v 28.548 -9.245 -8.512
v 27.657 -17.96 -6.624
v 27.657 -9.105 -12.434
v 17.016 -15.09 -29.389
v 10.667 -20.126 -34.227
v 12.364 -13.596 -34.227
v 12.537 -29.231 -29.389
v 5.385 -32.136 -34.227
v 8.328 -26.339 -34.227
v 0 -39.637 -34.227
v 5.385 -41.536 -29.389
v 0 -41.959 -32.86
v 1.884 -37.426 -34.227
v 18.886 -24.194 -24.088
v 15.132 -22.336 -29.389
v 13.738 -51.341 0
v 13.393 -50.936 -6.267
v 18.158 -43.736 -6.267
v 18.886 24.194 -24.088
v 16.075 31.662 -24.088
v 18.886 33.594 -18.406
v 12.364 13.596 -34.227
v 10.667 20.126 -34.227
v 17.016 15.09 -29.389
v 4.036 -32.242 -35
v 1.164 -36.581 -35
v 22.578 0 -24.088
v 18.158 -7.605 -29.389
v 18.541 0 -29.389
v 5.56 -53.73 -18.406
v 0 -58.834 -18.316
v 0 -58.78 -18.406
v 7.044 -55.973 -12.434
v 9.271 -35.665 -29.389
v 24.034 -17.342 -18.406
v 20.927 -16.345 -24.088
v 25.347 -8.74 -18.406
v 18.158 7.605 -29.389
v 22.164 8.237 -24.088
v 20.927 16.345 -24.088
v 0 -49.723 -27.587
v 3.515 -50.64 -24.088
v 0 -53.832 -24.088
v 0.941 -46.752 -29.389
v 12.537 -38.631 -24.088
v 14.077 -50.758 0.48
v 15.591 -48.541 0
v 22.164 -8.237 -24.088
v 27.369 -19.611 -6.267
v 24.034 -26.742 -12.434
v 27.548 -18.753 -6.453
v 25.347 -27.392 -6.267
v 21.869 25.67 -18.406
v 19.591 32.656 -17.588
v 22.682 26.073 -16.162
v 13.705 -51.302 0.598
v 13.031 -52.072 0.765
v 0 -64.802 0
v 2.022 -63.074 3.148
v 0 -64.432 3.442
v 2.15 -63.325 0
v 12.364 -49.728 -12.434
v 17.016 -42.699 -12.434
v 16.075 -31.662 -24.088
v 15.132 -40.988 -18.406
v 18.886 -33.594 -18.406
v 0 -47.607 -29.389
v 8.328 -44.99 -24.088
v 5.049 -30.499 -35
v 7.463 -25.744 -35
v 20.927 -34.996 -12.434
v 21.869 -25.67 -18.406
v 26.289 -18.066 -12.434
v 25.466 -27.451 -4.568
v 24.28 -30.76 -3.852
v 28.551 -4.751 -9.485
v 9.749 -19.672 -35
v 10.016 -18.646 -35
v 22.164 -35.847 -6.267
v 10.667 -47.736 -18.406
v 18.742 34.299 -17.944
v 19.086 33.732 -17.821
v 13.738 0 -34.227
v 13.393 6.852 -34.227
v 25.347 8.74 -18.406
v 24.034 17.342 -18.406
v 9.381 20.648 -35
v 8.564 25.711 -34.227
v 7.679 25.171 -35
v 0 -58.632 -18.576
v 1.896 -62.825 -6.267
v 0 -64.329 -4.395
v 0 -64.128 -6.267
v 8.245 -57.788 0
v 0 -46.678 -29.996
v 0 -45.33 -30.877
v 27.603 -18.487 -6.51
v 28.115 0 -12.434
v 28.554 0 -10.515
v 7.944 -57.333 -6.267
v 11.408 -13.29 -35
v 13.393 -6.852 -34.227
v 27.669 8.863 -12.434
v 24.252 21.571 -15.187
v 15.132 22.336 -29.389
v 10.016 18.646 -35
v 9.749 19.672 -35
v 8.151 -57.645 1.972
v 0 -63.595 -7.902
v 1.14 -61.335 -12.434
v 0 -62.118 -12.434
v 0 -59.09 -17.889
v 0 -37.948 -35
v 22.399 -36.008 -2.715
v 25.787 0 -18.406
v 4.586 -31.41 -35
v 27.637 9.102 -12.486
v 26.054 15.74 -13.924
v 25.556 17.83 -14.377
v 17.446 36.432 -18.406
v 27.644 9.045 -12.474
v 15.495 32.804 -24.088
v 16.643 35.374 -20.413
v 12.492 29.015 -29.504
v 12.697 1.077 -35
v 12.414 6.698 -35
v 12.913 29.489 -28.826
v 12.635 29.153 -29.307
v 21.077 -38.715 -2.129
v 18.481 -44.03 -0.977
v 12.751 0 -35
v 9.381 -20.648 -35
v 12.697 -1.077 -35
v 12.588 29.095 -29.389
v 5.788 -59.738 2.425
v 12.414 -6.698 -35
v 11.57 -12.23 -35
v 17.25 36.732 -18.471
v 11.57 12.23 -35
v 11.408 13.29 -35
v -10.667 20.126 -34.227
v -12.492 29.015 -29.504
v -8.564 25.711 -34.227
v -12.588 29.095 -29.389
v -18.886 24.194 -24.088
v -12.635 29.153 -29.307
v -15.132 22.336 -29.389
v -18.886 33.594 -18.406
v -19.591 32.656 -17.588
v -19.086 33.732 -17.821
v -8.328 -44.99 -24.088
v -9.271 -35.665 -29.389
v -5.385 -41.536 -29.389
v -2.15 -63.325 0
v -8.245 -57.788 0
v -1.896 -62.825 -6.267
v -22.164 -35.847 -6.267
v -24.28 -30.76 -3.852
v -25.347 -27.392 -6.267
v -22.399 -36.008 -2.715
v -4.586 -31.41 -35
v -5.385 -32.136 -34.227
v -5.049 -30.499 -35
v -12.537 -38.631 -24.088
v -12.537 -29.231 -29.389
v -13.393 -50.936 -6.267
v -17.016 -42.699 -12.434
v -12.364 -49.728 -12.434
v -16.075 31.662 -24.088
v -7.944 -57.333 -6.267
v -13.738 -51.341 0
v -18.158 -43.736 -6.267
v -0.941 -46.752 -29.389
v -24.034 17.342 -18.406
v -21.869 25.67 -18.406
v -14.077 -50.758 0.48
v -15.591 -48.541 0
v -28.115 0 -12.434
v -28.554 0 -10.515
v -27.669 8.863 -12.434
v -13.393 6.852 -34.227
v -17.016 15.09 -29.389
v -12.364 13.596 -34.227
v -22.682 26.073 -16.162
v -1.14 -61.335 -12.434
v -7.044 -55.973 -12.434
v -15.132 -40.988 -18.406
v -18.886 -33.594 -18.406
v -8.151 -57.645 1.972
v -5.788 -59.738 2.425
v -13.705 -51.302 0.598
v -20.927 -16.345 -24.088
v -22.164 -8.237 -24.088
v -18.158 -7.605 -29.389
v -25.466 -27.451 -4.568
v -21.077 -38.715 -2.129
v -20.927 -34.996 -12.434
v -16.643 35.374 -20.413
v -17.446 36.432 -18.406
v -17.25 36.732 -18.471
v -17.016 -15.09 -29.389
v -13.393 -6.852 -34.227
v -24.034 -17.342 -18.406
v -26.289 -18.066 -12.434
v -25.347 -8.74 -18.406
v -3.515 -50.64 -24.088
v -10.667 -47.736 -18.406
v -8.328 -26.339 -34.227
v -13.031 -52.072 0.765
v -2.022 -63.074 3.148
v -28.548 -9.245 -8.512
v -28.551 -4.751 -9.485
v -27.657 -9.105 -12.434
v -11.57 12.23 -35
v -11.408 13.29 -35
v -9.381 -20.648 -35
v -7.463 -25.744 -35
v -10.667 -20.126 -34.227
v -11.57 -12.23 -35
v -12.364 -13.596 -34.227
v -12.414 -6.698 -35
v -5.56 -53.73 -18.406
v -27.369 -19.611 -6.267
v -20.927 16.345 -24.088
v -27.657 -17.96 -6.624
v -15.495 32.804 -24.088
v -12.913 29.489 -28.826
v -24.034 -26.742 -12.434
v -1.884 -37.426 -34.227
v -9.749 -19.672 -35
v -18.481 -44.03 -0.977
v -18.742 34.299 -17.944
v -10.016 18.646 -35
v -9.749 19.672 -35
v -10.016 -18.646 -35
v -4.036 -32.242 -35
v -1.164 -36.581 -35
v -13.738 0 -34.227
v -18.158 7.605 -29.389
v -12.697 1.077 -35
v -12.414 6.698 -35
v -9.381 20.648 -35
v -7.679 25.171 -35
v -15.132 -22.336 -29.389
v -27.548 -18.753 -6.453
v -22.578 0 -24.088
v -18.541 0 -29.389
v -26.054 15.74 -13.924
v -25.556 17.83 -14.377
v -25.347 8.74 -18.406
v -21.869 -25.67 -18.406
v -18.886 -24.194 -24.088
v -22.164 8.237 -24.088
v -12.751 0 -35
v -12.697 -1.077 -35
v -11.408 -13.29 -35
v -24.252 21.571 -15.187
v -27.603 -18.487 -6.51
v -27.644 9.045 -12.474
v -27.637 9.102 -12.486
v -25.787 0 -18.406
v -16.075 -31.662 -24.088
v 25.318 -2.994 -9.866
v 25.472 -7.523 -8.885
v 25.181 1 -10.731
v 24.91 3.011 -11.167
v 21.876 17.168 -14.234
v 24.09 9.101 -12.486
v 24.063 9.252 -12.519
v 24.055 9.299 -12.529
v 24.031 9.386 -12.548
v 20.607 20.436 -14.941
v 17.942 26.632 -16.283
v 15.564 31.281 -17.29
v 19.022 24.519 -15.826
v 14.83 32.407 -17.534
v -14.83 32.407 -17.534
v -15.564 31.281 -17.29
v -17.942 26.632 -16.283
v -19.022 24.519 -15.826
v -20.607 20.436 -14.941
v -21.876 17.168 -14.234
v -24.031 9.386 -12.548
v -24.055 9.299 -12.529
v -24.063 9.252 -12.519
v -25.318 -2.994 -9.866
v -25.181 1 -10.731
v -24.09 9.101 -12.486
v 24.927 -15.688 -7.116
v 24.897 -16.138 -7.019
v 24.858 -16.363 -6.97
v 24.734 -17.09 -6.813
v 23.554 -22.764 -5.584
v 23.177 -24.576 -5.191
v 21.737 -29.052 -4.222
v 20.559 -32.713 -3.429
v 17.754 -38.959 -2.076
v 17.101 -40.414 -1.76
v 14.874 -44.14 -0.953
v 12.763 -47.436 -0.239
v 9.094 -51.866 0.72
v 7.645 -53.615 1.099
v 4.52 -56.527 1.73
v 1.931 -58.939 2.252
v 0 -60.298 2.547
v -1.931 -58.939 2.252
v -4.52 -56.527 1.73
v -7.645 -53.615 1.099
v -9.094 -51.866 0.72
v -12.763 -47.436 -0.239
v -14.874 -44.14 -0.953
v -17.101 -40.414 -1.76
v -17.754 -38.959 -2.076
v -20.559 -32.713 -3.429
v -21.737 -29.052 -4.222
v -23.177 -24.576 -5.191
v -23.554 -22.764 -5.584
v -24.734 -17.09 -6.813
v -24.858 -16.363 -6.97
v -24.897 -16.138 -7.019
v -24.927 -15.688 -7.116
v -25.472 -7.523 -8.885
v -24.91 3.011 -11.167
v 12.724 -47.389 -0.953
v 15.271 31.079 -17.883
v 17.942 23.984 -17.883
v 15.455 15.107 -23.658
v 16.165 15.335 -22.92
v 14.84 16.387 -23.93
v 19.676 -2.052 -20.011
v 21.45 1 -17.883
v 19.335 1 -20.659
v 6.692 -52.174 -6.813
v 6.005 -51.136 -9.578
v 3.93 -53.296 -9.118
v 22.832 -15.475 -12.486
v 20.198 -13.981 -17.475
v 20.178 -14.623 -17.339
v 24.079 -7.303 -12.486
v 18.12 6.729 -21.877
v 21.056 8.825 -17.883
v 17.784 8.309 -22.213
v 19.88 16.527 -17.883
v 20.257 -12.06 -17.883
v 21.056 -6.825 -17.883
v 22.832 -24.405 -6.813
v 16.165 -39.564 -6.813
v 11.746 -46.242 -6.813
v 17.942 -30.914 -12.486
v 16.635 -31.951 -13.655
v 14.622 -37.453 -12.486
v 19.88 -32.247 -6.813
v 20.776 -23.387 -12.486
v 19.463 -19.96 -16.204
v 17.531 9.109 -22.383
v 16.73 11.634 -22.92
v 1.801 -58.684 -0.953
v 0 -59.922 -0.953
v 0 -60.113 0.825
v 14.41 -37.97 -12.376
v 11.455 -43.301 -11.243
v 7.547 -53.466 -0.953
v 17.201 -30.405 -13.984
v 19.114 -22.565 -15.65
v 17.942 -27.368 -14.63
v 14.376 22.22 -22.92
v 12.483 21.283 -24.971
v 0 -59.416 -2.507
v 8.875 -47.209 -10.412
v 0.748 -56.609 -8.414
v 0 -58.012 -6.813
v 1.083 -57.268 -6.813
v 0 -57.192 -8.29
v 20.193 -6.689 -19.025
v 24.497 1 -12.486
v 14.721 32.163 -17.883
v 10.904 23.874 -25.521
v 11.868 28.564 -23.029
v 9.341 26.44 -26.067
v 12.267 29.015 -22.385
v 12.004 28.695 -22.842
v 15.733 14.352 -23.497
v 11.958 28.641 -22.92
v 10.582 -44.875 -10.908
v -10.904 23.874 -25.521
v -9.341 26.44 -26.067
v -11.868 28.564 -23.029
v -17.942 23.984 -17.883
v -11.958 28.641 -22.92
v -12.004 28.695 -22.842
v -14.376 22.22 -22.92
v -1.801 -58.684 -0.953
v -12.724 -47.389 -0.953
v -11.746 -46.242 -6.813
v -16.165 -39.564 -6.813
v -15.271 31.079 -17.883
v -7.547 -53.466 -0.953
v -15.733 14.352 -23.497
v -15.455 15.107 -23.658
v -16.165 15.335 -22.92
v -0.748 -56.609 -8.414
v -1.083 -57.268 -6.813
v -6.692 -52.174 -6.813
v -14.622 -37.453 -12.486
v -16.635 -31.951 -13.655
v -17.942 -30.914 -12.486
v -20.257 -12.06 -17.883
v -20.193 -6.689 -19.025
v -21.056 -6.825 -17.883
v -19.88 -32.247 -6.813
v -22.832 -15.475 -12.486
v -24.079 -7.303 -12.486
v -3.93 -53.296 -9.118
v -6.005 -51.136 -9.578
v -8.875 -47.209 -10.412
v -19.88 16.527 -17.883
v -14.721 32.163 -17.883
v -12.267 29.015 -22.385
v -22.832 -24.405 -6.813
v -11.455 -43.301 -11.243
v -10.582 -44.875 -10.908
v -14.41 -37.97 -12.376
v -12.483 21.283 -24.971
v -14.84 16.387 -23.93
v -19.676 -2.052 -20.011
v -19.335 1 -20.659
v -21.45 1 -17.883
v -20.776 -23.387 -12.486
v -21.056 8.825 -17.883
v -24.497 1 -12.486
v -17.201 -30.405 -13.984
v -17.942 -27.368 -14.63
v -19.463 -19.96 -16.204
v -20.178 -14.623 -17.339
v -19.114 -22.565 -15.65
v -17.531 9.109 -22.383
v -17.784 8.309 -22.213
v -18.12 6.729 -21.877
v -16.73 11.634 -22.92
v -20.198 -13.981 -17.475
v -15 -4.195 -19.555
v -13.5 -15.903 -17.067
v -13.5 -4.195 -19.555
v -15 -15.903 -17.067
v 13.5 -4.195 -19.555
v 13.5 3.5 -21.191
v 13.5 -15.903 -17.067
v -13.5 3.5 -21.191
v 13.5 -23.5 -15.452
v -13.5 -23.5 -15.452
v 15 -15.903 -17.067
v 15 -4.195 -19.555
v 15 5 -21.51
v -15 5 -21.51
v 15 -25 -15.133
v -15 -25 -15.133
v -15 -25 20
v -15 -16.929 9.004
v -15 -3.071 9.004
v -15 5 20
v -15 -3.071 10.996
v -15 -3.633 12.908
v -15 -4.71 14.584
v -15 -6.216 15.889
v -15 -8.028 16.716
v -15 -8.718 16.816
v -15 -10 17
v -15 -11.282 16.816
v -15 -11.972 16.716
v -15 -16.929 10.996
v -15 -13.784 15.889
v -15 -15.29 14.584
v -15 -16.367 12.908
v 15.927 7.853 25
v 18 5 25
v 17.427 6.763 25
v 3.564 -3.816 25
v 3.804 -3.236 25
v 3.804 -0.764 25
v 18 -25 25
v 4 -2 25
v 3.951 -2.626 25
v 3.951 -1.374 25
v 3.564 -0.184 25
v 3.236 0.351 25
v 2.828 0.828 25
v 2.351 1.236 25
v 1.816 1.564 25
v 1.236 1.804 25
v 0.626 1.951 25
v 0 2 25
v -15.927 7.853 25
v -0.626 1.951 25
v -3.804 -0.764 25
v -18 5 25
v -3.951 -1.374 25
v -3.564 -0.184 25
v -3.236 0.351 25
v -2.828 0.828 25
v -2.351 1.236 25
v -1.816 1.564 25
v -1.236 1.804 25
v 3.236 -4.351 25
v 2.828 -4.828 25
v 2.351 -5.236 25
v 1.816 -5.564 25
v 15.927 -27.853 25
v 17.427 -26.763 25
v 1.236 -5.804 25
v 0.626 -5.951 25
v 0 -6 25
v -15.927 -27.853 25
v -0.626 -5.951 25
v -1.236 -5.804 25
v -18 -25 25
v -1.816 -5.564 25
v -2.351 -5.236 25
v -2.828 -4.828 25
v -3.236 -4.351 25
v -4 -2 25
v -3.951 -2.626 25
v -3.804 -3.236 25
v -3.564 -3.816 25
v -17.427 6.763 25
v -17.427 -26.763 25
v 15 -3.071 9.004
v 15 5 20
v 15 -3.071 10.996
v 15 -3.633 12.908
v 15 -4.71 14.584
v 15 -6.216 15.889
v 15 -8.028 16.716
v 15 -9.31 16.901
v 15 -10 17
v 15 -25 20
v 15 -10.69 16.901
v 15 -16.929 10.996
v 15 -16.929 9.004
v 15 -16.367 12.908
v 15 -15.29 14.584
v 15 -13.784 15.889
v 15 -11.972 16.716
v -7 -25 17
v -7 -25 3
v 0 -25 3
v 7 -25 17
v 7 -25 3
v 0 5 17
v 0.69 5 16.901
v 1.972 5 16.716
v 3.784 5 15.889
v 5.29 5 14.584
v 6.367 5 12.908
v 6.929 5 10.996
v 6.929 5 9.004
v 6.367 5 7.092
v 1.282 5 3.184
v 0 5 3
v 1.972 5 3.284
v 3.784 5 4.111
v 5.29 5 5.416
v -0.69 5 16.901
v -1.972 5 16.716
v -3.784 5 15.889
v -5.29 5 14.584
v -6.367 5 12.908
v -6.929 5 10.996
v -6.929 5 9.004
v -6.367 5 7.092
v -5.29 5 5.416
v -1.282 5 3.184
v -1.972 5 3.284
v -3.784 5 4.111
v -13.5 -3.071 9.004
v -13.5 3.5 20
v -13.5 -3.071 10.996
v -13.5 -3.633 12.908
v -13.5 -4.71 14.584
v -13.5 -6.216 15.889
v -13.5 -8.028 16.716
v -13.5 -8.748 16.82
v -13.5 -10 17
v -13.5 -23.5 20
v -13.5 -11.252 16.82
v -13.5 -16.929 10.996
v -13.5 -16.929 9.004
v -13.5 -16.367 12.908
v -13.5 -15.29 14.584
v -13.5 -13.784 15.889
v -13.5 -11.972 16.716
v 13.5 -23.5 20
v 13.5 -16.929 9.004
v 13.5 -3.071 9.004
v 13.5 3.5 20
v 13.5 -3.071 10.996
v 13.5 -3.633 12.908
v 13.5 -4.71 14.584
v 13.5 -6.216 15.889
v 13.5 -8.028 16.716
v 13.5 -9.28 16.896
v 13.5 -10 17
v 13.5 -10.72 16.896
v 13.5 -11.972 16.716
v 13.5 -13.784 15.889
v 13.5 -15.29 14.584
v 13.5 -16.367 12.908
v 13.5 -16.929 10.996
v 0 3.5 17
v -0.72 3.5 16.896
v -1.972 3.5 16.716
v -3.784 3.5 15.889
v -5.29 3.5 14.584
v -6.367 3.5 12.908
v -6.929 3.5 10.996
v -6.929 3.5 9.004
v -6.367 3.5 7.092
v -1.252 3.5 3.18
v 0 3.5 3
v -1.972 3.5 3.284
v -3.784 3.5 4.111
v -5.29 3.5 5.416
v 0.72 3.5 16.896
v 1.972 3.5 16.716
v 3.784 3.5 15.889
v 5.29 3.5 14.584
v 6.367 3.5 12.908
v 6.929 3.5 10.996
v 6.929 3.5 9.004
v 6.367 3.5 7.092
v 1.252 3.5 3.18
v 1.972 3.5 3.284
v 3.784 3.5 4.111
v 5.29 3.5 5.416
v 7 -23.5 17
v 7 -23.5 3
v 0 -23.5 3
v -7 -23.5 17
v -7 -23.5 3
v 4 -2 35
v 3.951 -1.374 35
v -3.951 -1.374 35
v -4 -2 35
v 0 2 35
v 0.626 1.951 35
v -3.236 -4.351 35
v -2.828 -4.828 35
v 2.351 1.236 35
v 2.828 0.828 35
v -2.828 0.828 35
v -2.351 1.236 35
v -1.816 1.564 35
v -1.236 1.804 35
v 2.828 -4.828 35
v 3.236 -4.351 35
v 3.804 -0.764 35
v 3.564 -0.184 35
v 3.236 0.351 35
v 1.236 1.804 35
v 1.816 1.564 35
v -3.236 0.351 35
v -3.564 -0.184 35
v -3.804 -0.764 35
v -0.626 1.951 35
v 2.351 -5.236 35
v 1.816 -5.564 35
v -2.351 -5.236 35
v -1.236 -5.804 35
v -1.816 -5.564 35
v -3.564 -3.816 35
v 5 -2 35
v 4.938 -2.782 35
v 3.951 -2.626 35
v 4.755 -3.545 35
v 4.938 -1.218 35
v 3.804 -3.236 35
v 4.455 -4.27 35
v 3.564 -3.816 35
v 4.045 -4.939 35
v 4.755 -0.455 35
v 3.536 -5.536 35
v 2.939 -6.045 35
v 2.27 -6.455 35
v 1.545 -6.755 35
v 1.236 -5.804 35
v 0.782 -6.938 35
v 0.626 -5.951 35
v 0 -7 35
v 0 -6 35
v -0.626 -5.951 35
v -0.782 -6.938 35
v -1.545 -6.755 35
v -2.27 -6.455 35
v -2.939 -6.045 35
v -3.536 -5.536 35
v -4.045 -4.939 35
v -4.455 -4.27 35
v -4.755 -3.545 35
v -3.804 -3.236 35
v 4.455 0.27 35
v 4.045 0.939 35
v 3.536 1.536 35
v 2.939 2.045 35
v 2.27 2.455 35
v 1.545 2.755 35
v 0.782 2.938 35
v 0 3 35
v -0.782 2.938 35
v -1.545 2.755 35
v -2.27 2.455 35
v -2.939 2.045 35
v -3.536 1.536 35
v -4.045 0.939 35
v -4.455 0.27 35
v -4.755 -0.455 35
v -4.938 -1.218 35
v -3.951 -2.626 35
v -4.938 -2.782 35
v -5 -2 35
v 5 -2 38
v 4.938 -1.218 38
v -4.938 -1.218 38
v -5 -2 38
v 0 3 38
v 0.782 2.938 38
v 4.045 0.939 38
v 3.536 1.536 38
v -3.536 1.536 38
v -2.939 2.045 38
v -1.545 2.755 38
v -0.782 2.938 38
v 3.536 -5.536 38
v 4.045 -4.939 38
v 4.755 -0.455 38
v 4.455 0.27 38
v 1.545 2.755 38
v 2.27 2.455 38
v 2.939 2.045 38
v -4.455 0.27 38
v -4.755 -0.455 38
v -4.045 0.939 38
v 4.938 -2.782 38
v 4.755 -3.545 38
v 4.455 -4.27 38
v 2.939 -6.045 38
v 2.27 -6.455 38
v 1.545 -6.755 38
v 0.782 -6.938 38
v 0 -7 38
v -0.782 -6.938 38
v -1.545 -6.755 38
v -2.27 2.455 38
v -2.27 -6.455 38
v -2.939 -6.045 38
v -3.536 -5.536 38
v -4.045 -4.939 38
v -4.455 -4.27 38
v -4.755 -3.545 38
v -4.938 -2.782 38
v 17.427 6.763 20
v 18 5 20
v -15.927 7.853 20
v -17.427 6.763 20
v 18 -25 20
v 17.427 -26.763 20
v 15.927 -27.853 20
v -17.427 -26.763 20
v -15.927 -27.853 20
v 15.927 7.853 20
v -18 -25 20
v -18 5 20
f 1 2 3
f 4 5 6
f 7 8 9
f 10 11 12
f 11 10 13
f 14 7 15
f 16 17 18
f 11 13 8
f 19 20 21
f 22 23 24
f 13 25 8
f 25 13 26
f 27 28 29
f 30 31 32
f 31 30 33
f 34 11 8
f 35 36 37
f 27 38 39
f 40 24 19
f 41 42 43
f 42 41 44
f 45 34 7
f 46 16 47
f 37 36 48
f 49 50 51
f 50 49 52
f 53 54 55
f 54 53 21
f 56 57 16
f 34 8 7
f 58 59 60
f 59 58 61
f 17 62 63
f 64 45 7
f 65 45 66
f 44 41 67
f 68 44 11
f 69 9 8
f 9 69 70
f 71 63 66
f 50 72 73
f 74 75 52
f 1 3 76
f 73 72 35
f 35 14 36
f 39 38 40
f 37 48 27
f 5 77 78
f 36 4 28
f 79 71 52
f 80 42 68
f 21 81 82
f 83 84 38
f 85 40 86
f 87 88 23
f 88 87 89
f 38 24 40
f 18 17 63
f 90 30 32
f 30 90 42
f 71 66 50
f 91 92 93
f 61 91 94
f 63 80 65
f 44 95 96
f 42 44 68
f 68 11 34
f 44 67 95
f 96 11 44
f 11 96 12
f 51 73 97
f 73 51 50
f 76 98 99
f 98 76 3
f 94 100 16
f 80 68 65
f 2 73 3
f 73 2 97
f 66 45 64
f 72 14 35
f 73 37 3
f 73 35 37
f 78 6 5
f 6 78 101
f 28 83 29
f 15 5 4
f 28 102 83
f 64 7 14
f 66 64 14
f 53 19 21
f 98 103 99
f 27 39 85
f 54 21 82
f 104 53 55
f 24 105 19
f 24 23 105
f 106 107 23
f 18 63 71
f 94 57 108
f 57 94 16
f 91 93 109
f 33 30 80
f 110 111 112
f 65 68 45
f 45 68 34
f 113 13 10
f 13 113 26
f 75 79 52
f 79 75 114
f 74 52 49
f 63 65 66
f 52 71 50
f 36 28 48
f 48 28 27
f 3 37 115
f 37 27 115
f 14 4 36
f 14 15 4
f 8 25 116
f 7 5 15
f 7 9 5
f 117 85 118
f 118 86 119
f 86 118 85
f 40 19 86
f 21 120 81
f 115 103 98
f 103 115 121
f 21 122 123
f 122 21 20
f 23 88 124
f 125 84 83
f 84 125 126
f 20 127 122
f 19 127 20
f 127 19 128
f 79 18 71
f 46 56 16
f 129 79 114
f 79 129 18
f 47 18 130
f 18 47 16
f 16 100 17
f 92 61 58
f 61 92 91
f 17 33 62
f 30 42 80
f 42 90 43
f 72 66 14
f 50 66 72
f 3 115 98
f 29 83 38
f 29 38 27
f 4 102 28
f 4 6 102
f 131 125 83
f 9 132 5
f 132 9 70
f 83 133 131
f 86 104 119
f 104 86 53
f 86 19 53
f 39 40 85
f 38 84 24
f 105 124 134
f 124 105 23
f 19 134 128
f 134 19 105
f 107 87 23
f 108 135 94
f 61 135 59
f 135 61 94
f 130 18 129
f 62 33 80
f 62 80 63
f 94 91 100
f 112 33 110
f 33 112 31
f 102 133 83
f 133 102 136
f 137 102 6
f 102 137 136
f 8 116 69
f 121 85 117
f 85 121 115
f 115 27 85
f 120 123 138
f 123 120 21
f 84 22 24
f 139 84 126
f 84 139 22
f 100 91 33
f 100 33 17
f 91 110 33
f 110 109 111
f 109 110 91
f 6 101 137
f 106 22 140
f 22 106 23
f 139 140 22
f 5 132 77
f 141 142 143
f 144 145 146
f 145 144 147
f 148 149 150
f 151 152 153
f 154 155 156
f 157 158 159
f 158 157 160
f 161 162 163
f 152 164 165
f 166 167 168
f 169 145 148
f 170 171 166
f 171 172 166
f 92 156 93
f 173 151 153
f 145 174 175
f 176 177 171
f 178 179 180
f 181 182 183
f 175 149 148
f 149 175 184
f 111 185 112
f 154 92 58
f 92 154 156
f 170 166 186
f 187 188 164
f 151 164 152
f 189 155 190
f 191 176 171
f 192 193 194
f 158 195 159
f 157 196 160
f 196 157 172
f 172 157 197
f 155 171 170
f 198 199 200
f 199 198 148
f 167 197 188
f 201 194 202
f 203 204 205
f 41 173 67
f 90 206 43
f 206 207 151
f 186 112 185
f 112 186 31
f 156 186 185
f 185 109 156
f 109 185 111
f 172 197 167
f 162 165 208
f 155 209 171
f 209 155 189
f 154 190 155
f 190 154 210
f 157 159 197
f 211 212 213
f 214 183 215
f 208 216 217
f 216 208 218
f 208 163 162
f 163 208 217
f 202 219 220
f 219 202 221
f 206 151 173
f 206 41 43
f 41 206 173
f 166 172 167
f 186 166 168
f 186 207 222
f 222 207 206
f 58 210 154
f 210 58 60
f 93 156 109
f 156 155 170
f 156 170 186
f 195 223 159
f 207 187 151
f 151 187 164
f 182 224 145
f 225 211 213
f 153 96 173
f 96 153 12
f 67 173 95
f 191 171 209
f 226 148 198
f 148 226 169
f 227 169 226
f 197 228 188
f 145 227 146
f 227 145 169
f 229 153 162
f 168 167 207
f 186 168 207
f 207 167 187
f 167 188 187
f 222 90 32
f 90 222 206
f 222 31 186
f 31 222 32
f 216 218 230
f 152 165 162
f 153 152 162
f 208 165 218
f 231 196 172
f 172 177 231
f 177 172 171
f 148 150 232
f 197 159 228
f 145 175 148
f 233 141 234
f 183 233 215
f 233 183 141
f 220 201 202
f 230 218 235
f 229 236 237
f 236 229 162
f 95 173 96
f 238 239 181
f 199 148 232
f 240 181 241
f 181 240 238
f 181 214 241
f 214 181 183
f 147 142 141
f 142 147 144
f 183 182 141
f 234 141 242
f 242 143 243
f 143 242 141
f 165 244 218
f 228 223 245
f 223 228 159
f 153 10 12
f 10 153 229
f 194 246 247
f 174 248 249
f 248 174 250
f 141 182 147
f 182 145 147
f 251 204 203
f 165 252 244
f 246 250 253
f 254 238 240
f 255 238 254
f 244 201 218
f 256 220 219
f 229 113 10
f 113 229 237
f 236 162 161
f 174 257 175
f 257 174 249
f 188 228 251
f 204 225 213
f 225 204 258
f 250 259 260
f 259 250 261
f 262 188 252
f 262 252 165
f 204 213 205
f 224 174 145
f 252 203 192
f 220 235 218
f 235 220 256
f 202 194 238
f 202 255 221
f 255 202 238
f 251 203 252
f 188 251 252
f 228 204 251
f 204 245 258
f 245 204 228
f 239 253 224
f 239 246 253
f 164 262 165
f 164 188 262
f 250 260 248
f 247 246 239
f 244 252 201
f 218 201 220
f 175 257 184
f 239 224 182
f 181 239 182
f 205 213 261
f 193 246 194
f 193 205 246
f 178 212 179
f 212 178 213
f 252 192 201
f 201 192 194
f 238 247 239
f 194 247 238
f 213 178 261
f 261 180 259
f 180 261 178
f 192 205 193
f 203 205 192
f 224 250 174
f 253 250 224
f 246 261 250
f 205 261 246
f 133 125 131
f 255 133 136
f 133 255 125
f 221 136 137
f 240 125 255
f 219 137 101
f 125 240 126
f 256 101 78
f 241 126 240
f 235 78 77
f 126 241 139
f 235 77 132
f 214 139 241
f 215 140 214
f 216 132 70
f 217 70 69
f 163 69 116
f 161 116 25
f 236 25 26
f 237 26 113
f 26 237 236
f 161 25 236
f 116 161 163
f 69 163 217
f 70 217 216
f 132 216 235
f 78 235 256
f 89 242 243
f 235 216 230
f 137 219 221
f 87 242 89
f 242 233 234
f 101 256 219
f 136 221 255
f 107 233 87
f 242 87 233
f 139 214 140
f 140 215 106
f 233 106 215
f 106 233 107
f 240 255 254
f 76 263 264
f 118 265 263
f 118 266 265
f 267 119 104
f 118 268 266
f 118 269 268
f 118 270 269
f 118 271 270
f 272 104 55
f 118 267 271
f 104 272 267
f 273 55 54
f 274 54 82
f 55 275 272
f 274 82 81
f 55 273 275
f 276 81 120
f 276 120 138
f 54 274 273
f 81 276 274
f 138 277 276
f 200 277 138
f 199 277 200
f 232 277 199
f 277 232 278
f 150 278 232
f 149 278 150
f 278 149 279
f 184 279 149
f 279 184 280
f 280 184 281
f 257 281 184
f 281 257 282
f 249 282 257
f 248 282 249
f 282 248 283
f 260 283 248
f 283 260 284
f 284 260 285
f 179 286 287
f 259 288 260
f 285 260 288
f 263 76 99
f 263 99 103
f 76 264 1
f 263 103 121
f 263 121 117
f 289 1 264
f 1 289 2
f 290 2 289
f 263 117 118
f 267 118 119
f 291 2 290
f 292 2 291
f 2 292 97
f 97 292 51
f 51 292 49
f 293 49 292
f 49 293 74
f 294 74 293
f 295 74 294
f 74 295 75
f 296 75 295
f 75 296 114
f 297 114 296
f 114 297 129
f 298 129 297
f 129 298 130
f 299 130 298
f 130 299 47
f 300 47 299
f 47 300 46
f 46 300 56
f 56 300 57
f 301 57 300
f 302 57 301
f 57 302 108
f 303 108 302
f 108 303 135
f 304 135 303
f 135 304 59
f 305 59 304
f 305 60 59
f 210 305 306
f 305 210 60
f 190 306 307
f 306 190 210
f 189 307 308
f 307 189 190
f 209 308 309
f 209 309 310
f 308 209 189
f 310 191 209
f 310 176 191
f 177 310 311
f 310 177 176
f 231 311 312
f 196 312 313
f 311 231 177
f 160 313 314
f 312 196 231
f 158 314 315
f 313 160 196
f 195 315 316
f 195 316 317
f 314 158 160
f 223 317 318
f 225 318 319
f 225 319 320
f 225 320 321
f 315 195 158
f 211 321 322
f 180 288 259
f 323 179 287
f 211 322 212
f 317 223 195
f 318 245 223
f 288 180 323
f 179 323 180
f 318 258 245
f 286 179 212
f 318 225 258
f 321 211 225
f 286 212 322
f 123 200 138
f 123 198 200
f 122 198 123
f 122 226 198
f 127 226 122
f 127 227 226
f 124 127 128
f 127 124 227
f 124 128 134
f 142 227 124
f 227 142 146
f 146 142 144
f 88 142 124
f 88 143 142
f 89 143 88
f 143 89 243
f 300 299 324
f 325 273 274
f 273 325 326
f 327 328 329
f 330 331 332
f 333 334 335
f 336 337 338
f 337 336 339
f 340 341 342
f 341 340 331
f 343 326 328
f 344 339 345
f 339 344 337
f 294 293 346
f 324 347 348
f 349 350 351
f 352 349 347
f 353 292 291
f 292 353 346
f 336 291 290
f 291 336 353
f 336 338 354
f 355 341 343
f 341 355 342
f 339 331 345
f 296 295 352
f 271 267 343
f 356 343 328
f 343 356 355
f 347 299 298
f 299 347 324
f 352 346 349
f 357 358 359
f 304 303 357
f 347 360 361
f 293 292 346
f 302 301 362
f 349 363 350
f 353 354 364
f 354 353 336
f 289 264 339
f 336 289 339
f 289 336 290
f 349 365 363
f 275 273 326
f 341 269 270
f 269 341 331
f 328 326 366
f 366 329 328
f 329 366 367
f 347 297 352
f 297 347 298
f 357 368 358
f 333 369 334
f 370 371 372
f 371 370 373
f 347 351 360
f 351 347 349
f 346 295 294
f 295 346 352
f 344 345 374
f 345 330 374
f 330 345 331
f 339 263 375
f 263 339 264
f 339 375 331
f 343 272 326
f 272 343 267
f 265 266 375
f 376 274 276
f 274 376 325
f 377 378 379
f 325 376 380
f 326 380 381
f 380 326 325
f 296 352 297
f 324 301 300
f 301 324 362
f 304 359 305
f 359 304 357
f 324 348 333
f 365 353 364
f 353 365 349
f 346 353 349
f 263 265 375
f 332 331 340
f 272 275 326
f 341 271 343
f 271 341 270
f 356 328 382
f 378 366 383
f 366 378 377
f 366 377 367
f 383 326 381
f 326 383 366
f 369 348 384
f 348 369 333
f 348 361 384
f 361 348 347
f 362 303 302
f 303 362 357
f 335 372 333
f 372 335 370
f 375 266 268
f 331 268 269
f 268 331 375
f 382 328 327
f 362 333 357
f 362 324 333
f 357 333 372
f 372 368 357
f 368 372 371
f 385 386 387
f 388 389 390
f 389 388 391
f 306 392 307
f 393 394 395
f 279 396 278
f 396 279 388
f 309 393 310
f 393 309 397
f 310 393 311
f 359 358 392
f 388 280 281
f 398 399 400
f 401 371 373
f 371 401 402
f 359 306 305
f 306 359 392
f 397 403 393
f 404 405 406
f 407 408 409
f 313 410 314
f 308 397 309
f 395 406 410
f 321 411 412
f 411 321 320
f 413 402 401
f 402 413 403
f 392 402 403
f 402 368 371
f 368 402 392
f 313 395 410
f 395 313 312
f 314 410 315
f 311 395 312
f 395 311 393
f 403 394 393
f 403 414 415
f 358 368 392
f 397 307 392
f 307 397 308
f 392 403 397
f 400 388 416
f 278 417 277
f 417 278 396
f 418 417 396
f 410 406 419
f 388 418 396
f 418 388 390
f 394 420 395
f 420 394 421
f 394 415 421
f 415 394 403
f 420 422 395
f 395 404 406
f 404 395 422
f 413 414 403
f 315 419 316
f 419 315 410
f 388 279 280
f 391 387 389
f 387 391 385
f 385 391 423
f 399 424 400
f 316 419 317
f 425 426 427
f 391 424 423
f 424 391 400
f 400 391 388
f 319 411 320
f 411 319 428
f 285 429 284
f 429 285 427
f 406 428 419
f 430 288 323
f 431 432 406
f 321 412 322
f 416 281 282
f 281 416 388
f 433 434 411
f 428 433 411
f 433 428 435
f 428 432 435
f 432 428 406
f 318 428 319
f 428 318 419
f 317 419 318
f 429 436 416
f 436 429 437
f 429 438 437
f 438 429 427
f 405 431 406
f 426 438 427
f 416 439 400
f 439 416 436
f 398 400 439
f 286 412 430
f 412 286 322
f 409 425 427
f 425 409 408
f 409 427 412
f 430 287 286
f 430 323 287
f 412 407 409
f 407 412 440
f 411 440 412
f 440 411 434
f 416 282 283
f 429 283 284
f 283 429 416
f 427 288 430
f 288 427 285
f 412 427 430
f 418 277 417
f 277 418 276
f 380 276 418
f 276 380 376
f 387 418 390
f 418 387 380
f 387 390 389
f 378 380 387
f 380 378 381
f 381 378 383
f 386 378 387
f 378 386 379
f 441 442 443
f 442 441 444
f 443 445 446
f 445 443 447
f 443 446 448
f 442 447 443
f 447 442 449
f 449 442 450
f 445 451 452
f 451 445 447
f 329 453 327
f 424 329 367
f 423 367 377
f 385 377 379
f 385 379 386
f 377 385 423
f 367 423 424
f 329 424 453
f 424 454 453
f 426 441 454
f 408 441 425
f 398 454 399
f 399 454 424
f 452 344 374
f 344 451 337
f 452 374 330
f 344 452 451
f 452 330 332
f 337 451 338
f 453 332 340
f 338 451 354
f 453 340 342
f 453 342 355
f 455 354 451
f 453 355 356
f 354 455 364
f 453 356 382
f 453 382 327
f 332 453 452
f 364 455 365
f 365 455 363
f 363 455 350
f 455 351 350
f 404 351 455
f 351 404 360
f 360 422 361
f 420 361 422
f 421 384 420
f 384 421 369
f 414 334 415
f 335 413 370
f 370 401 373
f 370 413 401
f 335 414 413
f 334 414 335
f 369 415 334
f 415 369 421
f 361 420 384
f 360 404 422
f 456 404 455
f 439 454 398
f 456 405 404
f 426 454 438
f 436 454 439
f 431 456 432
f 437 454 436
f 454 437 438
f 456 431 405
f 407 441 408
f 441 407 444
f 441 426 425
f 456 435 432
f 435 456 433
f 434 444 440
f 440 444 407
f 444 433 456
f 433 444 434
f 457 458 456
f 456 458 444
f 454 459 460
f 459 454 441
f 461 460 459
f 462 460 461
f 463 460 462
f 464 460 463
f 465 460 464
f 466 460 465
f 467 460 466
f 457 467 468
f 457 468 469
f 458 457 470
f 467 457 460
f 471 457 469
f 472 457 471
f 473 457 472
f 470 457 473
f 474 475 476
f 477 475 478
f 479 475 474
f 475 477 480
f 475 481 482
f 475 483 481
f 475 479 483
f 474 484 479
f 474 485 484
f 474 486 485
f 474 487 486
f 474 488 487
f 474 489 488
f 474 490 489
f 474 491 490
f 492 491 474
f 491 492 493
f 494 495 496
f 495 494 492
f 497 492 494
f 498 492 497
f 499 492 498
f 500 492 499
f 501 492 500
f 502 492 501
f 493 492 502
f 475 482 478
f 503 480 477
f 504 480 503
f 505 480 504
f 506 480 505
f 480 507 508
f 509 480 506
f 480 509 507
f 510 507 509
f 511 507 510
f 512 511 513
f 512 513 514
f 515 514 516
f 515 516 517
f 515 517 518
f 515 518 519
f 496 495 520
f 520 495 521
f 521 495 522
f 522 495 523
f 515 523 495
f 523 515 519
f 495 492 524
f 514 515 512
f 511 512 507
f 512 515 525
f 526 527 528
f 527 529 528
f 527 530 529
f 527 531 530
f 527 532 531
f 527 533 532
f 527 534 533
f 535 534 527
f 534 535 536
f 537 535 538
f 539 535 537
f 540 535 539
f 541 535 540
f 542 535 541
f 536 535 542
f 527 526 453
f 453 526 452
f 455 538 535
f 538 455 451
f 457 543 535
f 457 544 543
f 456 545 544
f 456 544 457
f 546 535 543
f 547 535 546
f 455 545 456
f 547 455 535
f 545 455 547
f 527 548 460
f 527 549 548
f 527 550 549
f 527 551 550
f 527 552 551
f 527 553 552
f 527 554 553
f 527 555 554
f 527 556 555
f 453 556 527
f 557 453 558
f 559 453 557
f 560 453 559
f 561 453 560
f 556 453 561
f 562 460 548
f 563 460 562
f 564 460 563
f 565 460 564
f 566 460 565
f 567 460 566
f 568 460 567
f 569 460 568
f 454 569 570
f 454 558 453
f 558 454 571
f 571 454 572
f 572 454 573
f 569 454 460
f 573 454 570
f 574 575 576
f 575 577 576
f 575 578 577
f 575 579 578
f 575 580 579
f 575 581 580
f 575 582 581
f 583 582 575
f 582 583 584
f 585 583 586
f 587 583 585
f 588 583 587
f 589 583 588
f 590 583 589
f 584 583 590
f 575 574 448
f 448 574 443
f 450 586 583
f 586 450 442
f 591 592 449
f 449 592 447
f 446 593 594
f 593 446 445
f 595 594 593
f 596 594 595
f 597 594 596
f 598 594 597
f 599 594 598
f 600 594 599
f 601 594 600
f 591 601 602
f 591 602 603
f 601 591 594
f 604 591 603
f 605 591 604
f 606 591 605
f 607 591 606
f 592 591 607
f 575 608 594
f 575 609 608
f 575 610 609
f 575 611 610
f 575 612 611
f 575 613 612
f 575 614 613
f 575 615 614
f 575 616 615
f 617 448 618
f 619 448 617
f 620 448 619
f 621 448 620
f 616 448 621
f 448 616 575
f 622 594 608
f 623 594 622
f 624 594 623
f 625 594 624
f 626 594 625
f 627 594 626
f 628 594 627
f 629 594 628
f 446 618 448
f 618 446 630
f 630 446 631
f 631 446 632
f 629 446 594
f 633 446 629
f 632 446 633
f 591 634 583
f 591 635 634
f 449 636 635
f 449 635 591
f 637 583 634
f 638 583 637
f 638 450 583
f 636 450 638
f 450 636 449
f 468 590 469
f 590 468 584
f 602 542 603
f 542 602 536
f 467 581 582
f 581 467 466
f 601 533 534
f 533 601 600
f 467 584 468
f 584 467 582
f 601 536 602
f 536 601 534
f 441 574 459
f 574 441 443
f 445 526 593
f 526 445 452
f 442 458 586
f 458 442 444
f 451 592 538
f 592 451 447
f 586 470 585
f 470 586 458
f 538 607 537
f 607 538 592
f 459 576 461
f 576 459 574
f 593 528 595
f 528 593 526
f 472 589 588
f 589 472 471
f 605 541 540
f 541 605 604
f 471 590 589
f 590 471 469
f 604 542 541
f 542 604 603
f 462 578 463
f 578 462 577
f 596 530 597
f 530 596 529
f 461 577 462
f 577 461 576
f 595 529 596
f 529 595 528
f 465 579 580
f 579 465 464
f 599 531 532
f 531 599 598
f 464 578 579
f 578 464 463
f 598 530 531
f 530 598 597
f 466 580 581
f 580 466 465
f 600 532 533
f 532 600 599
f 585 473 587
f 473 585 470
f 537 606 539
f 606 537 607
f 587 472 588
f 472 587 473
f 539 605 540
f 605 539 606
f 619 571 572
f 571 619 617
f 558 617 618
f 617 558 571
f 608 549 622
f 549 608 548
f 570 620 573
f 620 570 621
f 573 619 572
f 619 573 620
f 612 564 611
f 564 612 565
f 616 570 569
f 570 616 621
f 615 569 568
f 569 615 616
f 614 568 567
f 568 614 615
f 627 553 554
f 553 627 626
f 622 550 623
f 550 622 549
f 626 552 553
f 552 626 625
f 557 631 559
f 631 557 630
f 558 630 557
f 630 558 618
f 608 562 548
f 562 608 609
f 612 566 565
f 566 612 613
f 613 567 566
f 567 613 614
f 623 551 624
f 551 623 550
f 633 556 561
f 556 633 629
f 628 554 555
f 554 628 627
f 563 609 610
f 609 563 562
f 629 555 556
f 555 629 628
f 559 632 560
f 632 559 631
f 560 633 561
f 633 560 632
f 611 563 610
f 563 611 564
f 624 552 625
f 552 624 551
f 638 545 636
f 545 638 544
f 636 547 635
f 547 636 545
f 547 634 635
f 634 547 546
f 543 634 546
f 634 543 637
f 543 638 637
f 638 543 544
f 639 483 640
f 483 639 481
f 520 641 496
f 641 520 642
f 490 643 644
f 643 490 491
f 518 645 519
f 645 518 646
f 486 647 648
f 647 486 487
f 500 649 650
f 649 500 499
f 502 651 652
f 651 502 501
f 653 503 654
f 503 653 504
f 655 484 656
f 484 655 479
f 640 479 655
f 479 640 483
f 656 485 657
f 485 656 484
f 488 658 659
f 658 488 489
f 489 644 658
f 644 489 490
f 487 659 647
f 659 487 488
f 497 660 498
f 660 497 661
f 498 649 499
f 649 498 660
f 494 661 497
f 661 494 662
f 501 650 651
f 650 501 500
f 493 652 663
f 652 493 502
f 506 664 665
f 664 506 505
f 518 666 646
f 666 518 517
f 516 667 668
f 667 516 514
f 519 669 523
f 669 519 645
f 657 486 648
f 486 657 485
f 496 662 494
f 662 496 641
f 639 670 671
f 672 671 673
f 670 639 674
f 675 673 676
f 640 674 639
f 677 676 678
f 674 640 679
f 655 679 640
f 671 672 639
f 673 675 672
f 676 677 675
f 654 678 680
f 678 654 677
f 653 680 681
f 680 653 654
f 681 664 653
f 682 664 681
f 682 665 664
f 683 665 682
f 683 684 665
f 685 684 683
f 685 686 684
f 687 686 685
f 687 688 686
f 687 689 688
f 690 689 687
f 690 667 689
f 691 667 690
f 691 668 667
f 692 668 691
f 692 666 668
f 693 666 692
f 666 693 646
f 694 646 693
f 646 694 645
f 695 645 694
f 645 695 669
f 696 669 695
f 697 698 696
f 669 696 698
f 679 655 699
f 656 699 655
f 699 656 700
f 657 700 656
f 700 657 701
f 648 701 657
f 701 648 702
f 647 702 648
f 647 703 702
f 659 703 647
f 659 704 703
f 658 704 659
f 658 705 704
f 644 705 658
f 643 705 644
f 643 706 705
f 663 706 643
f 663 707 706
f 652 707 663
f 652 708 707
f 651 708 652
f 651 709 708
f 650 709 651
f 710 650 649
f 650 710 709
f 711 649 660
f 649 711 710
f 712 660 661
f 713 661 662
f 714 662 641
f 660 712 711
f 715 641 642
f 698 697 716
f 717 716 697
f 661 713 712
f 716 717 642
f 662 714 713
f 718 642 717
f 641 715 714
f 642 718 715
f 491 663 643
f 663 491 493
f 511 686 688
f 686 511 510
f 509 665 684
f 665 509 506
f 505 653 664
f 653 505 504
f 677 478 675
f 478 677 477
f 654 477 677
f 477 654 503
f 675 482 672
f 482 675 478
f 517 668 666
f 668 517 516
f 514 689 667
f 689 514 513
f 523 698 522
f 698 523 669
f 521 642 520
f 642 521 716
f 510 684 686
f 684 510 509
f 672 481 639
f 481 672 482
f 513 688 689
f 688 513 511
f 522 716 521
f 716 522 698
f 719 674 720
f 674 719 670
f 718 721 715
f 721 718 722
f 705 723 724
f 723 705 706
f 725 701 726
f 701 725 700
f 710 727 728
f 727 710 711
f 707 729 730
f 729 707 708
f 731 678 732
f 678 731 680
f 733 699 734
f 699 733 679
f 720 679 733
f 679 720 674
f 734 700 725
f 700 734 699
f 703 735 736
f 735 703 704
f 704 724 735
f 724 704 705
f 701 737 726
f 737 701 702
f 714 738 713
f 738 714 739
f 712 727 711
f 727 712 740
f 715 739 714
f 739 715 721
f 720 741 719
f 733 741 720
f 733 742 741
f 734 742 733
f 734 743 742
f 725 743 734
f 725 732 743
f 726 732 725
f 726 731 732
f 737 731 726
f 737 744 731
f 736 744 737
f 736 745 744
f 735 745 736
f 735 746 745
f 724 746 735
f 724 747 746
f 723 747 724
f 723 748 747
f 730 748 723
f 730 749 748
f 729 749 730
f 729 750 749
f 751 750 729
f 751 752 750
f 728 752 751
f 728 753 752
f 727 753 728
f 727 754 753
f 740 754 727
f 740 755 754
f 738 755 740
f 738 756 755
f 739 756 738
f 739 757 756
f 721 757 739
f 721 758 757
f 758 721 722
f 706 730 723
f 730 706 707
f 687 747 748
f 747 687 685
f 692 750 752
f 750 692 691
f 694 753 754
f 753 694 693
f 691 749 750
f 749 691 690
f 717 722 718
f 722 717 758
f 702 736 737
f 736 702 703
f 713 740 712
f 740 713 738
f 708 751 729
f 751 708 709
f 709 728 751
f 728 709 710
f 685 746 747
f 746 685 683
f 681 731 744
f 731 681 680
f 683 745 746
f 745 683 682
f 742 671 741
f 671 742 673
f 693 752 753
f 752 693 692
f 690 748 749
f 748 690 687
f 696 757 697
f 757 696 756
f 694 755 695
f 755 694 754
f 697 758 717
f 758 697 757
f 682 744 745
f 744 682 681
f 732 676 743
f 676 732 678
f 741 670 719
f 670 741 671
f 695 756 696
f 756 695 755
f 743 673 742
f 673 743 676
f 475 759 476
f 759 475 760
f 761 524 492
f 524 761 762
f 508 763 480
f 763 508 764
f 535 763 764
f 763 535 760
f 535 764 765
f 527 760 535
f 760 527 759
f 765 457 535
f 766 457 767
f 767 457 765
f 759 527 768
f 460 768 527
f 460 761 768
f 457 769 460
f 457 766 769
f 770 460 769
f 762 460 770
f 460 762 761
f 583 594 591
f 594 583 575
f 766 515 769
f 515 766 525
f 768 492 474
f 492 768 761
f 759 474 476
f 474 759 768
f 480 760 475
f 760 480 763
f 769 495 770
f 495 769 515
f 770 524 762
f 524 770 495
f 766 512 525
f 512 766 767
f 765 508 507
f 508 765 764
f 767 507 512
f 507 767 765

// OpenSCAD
module benchy() {
    
    module base() {
        // sphere radius
        sr=50;
        // sphere distance
        sd=sr*.5;
        
        render()
        scale([1.2,1.5,1])
        intersection() {
            translate([-sd,0,0])
            sphere(r=sr, $fn=50);
            
            translate([sd,0,0])
            sphere(r=sr, $fn=50);
            
            translate([0,0,500-35])
            cube(1000, true);
            
            rotate([162,0,0])
            translate([0,0,500+10])
            cube(1000, true);
            
            rotate([65,0,0])
            translate([0,0,500-30])
            cube(1000, true);
        }
    }
    
    render()
    difference() {
        base();
        
        translate([0,1,5])
        scale(.95)
        base();
    }
    
    render()
    intersection() {
        base();
        rotate([-12,0,0])
        translate([0,0,-100-20])
        cube(200,true);
    }
   


    // chamber
    module chamber() {
        translate([0,-10,0])
        difference() {
            
            cube([30,30,50], true);
            cube([27,27,47], true);
            
            // doors
            translate([0,0,10])
            rotate([0,90,0])
            hull() {
                cylinder(r=7,h=100,center=true);
               translate([40,-5,0])
                cube(10);
            }
            
            // round hole back
            translate([0,0,10])
            rotate(90)
            rotate([0,90,0])
            cylinder(r=7,h=100,center=true);
            
            
            // round hole back
            translate([0,-50,10])
            rotate(90)
            rotate([0,90,0])
            cube([14,14,100],center=true);
        }
        
        // roof
        module roof(r=3,h=5) {
             // roof
            module cyl(x,y,r) {
                translate([x,y,0])
                cylinder(r=r,h=h);
            }
     
            x = 15; y = 15;
            hull() {
                cyl(x,y,r);
                cyl(x,-y,r);
                cyl(-x,y,r);
                cyl(-x,-y,r);
            }
        }
        translate([0,-10,20])
        roof();
        
        // chimney
        module chimney() {
            $fn=40;
            translate([0,-2,25])
            cylinder(r=4, h=10);
            translate([0,-2,35])
            cylinder(r=5, h=3);
        }
        chimney();
    }
    
    chamber();
}
    
    
benchy();
    
